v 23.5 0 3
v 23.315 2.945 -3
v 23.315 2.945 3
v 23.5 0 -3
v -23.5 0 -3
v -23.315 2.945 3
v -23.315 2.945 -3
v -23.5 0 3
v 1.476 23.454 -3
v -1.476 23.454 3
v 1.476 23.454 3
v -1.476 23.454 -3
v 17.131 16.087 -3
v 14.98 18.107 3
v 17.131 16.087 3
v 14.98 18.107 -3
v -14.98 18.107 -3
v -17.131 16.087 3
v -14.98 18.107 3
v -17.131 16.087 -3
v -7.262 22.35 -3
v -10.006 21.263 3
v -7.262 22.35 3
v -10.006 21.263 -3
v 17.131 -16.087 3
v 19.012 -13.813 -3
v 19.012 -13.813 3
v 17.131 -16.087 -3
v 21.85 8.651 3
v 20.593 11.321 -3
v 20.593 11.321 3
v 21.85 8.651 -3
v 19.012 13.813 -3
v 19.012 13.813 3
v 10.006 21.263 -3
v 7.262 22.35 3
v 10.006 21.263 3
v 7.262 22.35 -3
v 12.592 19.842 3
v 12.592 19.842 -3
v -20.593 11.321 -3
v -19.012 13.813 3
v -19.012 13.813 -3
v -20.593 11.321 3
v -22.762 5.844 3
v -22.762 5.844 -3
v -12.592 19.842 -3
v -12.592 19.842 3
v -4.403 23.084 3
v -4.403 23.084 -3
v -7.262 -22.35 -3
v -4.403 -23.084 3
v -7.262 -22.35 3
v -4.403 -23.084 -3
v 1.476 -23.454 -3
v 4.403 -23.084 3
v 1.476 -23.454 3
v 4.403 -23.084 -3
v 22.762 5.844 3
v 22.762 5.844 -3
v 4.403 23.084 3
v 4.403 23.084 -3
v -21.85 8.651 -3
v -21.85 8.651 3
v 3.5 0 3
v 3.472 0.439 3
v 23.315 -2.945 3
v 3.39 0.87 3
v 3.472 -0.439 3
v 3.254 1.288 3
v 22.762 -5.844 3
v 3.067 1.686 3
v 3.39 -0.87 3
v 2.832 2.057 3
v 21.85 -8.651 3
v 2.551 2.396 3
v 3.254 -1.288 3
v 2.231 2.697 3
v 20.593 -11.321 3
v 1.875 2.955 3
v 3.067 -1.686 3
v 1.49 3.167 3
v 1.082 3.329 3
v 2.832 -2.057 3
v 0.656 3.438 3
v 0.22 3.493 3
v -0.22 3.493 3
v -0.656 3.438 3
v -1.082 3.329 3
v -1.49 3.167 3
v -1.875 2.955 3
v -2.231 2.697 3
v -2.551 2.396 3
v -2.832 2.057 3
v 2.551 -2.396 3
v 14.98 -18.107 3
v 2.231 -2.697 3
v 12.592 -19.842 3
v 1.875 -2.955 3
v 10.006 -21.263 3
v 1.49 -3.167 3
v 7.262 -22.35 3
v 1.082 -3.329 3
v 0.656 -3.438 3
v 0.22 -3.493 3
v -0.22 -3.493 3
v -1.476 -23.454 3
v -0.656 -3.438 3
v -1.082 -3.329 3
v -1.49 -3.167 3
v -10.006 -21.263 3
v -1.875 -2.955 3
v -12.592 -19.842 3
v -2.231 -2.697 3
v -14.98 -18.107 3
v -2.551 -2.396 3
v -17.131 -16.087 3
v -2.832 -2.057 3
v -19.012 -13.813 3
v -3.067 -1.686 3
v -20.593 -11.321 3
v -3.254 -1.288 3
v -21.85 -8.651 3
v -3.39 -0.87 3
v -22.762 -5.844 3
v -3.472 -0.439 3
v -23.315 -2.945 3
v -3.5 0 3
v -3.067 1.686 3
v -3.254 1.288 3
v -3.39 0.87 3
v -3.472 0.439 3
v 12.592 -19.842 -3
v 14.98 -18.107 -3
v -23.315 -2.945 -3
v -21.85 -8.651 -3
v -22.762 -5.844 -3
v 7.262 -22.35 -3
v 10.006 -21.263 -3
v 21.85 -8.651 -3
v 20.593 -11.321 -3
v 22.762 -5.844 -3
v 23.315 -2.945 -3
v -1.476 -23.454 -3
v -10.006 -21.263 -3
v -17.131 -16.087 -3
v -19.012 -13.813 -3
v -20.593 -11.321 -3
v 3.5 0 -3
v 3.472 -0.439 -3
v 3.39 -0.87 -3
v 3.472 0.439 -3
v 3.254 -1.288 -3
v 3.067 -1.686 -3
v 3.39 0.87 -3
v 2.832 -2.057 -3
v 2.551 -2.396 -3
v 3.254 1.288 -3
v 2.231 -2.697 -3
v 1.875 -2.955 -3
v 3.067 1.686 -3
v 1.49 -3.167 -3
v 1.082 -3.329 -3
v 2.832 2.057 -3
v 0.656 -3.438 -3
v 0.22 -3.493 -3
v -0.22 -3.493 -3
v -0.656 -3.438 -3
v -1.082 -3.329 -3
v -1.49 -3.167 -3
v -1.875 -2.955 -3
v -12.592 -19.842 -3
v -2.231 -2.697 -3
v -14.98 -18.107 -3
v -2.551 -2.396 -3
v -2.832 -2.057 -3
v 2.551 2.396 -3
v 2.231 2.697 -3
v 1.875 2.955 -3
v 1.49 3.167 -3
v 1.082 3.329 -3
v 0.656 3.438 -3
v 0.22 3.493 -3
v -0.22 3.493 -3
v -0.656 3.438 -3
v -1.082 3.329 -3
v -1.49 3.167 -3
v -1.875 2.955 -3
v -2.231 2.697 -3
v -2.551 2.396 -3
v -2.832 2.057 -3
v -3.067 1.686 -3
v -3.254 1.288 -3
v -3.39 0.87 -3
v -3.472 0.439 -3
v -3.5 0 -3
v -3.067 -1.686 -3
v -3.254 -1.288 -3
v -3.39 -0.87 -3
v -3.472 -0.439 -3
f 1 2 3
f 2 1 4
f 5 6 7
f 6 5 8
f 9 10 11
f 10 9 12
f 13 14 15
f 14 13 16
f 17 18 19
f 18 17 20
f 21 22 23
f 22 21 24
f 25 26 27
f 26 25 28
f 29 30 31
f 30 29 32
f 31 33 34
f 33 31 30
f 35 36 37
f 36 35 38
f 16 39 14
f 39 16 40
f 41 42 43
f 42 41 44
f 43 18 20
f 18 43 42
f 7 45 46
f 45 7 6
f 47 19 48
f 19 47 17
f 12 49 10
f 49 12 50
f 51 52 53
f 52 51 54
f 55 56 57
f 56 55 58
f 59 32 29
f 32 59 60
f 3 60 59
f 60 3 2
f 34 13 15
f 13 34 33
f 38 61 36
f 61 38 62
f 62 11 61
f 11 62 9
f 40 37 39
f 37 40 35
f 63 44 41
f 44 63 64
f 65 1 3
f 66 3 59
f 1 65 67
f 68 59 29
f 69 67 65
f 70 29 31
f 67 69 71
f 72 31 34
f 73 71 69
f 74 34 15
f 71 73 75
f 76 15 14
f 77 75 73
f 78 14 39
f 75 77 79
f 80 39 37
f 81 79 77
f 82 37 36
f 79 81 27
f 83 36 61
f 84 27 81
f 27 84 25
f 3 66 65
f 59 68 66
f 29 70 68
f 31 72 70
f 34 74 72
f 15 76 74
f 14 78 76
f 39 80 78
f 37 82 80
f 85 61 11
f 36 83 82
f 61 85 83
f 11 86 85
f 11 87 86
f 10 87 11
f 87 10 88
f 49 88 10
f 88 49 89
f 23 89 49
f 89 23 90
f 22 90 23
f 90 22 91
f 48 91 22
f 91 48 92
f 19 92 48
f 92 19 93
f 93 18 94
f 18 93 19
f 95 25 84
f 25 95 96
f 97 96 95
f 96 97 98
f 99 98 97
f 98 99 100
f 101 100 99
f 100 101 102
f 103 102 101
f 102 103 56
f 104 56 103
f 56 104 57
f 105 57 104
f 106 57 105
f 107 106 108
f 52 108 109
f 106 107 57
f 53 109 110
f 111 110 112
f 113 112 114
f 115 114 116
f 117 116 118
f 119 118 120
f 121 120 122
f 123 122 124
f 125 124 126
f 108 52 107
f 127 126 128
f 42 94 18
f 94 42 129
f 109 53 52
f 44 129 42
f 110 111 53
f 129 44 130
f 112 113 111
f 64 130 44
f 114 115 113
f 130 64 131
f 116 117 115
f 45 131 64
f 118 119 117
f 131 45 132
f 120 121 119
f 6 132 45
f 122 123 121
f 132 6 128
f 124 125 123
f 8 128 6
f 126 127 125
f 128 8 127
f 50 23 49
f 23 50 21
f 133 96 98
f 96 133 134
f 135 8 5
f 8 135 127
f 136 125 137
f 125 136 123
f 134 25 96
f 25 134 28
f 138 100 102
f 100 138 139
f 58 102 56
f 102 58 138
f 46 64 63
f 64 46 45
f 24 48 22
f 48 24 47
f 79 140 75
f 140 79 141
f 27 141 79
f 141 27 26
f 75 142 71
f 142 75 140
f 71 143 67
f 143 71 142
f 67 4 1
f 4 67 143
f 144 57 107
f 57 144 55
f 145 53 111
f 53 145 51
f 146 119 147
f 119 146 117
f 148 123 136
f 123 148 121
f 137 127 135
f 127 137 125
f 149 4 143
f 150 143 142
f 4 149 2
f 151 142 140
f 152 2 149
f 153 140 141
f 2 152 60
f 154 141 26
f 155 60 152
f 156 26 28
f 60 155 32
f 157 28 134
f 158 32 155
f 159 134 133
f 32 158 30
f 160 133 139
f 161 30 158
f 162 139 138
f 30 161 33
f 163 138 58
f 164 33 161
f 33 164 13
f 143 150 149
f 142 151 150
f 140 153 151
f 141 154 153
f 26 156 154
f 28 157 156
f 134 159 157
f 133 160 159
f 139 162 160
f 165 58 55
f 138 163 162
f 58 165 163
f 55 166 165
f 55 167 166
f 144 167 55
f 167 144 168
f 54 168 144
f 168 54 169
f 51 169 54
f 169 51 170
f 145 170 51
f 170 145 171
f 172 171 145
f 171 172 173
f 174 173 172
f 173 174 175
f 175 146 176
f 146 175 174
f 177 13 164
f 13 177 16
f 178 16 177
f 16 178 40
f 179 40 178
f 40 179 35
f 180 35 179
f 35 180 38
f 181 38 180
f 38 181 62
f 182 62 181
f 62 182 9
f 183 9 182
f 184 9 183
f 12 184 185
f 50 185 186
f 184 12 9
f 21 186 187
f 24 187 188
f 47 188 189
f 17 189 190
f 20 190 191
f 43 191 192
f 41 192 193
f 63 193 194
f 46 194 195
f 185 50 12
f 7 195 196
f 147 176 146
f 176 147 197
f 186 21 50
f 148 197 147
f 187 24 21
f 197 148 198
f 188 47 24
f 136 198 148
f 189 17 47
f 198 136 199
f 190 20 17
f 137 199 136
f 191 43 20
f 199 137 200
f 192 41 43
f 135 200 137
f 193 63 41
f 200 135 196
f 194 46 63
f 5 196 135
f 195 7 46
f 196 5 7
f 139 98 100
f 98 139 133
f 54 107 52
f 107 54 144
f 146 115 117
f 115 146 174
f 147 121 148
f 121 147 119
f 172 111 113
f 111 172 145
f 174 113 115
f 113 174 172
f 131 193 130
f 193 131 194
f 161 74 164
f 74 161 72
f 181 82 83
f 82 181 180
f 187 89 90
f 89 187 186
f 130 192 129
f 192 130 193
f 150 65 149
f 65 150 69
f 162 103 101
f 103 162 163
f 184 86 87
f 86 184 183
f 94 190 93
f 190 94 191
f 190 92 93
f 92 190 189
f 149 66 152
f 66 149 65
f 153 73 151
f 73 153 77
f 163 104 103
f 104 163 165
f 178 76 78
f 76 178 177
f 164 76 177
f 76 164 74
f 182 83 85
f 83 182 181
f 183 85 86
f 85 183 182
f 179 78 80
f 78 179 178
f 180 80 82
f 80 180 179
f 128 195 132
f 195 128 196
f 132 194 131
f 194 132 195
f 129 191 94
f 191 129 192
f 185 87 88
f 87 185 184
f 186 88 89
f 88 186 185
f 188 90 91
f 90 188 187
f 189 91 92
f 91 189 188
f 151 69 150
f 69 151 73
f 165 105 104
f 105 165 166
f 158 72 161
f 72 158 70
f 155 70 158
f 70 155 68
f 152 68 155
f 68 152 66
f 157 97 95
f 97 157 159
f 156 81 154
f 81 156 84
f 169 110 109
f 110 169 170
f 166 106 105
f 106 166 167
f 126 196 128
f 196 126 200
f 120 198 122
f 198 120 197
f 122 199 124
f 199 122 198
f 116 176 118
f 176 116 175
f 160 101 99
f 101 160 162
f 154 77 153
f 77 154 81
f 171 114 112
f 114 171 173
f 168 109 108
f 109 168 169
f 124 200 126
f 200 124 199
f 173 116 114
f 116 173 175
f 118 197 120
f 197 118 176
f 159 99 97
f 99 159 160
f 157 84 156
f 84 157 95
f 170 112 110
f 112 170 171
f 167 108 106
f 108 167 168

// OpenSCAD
$fn = 50;


difference() {
	union() {
		translate(v = [0, 0, -3.0000000000]) {
			cylinder(h = 6, r = 23.5000000000);
		}
	}
	union() {
		translate(v = [0, 0, -100.0000000000]) {
			cylinder(h = 200, r = 3.5000000000);
		}
	}
}
